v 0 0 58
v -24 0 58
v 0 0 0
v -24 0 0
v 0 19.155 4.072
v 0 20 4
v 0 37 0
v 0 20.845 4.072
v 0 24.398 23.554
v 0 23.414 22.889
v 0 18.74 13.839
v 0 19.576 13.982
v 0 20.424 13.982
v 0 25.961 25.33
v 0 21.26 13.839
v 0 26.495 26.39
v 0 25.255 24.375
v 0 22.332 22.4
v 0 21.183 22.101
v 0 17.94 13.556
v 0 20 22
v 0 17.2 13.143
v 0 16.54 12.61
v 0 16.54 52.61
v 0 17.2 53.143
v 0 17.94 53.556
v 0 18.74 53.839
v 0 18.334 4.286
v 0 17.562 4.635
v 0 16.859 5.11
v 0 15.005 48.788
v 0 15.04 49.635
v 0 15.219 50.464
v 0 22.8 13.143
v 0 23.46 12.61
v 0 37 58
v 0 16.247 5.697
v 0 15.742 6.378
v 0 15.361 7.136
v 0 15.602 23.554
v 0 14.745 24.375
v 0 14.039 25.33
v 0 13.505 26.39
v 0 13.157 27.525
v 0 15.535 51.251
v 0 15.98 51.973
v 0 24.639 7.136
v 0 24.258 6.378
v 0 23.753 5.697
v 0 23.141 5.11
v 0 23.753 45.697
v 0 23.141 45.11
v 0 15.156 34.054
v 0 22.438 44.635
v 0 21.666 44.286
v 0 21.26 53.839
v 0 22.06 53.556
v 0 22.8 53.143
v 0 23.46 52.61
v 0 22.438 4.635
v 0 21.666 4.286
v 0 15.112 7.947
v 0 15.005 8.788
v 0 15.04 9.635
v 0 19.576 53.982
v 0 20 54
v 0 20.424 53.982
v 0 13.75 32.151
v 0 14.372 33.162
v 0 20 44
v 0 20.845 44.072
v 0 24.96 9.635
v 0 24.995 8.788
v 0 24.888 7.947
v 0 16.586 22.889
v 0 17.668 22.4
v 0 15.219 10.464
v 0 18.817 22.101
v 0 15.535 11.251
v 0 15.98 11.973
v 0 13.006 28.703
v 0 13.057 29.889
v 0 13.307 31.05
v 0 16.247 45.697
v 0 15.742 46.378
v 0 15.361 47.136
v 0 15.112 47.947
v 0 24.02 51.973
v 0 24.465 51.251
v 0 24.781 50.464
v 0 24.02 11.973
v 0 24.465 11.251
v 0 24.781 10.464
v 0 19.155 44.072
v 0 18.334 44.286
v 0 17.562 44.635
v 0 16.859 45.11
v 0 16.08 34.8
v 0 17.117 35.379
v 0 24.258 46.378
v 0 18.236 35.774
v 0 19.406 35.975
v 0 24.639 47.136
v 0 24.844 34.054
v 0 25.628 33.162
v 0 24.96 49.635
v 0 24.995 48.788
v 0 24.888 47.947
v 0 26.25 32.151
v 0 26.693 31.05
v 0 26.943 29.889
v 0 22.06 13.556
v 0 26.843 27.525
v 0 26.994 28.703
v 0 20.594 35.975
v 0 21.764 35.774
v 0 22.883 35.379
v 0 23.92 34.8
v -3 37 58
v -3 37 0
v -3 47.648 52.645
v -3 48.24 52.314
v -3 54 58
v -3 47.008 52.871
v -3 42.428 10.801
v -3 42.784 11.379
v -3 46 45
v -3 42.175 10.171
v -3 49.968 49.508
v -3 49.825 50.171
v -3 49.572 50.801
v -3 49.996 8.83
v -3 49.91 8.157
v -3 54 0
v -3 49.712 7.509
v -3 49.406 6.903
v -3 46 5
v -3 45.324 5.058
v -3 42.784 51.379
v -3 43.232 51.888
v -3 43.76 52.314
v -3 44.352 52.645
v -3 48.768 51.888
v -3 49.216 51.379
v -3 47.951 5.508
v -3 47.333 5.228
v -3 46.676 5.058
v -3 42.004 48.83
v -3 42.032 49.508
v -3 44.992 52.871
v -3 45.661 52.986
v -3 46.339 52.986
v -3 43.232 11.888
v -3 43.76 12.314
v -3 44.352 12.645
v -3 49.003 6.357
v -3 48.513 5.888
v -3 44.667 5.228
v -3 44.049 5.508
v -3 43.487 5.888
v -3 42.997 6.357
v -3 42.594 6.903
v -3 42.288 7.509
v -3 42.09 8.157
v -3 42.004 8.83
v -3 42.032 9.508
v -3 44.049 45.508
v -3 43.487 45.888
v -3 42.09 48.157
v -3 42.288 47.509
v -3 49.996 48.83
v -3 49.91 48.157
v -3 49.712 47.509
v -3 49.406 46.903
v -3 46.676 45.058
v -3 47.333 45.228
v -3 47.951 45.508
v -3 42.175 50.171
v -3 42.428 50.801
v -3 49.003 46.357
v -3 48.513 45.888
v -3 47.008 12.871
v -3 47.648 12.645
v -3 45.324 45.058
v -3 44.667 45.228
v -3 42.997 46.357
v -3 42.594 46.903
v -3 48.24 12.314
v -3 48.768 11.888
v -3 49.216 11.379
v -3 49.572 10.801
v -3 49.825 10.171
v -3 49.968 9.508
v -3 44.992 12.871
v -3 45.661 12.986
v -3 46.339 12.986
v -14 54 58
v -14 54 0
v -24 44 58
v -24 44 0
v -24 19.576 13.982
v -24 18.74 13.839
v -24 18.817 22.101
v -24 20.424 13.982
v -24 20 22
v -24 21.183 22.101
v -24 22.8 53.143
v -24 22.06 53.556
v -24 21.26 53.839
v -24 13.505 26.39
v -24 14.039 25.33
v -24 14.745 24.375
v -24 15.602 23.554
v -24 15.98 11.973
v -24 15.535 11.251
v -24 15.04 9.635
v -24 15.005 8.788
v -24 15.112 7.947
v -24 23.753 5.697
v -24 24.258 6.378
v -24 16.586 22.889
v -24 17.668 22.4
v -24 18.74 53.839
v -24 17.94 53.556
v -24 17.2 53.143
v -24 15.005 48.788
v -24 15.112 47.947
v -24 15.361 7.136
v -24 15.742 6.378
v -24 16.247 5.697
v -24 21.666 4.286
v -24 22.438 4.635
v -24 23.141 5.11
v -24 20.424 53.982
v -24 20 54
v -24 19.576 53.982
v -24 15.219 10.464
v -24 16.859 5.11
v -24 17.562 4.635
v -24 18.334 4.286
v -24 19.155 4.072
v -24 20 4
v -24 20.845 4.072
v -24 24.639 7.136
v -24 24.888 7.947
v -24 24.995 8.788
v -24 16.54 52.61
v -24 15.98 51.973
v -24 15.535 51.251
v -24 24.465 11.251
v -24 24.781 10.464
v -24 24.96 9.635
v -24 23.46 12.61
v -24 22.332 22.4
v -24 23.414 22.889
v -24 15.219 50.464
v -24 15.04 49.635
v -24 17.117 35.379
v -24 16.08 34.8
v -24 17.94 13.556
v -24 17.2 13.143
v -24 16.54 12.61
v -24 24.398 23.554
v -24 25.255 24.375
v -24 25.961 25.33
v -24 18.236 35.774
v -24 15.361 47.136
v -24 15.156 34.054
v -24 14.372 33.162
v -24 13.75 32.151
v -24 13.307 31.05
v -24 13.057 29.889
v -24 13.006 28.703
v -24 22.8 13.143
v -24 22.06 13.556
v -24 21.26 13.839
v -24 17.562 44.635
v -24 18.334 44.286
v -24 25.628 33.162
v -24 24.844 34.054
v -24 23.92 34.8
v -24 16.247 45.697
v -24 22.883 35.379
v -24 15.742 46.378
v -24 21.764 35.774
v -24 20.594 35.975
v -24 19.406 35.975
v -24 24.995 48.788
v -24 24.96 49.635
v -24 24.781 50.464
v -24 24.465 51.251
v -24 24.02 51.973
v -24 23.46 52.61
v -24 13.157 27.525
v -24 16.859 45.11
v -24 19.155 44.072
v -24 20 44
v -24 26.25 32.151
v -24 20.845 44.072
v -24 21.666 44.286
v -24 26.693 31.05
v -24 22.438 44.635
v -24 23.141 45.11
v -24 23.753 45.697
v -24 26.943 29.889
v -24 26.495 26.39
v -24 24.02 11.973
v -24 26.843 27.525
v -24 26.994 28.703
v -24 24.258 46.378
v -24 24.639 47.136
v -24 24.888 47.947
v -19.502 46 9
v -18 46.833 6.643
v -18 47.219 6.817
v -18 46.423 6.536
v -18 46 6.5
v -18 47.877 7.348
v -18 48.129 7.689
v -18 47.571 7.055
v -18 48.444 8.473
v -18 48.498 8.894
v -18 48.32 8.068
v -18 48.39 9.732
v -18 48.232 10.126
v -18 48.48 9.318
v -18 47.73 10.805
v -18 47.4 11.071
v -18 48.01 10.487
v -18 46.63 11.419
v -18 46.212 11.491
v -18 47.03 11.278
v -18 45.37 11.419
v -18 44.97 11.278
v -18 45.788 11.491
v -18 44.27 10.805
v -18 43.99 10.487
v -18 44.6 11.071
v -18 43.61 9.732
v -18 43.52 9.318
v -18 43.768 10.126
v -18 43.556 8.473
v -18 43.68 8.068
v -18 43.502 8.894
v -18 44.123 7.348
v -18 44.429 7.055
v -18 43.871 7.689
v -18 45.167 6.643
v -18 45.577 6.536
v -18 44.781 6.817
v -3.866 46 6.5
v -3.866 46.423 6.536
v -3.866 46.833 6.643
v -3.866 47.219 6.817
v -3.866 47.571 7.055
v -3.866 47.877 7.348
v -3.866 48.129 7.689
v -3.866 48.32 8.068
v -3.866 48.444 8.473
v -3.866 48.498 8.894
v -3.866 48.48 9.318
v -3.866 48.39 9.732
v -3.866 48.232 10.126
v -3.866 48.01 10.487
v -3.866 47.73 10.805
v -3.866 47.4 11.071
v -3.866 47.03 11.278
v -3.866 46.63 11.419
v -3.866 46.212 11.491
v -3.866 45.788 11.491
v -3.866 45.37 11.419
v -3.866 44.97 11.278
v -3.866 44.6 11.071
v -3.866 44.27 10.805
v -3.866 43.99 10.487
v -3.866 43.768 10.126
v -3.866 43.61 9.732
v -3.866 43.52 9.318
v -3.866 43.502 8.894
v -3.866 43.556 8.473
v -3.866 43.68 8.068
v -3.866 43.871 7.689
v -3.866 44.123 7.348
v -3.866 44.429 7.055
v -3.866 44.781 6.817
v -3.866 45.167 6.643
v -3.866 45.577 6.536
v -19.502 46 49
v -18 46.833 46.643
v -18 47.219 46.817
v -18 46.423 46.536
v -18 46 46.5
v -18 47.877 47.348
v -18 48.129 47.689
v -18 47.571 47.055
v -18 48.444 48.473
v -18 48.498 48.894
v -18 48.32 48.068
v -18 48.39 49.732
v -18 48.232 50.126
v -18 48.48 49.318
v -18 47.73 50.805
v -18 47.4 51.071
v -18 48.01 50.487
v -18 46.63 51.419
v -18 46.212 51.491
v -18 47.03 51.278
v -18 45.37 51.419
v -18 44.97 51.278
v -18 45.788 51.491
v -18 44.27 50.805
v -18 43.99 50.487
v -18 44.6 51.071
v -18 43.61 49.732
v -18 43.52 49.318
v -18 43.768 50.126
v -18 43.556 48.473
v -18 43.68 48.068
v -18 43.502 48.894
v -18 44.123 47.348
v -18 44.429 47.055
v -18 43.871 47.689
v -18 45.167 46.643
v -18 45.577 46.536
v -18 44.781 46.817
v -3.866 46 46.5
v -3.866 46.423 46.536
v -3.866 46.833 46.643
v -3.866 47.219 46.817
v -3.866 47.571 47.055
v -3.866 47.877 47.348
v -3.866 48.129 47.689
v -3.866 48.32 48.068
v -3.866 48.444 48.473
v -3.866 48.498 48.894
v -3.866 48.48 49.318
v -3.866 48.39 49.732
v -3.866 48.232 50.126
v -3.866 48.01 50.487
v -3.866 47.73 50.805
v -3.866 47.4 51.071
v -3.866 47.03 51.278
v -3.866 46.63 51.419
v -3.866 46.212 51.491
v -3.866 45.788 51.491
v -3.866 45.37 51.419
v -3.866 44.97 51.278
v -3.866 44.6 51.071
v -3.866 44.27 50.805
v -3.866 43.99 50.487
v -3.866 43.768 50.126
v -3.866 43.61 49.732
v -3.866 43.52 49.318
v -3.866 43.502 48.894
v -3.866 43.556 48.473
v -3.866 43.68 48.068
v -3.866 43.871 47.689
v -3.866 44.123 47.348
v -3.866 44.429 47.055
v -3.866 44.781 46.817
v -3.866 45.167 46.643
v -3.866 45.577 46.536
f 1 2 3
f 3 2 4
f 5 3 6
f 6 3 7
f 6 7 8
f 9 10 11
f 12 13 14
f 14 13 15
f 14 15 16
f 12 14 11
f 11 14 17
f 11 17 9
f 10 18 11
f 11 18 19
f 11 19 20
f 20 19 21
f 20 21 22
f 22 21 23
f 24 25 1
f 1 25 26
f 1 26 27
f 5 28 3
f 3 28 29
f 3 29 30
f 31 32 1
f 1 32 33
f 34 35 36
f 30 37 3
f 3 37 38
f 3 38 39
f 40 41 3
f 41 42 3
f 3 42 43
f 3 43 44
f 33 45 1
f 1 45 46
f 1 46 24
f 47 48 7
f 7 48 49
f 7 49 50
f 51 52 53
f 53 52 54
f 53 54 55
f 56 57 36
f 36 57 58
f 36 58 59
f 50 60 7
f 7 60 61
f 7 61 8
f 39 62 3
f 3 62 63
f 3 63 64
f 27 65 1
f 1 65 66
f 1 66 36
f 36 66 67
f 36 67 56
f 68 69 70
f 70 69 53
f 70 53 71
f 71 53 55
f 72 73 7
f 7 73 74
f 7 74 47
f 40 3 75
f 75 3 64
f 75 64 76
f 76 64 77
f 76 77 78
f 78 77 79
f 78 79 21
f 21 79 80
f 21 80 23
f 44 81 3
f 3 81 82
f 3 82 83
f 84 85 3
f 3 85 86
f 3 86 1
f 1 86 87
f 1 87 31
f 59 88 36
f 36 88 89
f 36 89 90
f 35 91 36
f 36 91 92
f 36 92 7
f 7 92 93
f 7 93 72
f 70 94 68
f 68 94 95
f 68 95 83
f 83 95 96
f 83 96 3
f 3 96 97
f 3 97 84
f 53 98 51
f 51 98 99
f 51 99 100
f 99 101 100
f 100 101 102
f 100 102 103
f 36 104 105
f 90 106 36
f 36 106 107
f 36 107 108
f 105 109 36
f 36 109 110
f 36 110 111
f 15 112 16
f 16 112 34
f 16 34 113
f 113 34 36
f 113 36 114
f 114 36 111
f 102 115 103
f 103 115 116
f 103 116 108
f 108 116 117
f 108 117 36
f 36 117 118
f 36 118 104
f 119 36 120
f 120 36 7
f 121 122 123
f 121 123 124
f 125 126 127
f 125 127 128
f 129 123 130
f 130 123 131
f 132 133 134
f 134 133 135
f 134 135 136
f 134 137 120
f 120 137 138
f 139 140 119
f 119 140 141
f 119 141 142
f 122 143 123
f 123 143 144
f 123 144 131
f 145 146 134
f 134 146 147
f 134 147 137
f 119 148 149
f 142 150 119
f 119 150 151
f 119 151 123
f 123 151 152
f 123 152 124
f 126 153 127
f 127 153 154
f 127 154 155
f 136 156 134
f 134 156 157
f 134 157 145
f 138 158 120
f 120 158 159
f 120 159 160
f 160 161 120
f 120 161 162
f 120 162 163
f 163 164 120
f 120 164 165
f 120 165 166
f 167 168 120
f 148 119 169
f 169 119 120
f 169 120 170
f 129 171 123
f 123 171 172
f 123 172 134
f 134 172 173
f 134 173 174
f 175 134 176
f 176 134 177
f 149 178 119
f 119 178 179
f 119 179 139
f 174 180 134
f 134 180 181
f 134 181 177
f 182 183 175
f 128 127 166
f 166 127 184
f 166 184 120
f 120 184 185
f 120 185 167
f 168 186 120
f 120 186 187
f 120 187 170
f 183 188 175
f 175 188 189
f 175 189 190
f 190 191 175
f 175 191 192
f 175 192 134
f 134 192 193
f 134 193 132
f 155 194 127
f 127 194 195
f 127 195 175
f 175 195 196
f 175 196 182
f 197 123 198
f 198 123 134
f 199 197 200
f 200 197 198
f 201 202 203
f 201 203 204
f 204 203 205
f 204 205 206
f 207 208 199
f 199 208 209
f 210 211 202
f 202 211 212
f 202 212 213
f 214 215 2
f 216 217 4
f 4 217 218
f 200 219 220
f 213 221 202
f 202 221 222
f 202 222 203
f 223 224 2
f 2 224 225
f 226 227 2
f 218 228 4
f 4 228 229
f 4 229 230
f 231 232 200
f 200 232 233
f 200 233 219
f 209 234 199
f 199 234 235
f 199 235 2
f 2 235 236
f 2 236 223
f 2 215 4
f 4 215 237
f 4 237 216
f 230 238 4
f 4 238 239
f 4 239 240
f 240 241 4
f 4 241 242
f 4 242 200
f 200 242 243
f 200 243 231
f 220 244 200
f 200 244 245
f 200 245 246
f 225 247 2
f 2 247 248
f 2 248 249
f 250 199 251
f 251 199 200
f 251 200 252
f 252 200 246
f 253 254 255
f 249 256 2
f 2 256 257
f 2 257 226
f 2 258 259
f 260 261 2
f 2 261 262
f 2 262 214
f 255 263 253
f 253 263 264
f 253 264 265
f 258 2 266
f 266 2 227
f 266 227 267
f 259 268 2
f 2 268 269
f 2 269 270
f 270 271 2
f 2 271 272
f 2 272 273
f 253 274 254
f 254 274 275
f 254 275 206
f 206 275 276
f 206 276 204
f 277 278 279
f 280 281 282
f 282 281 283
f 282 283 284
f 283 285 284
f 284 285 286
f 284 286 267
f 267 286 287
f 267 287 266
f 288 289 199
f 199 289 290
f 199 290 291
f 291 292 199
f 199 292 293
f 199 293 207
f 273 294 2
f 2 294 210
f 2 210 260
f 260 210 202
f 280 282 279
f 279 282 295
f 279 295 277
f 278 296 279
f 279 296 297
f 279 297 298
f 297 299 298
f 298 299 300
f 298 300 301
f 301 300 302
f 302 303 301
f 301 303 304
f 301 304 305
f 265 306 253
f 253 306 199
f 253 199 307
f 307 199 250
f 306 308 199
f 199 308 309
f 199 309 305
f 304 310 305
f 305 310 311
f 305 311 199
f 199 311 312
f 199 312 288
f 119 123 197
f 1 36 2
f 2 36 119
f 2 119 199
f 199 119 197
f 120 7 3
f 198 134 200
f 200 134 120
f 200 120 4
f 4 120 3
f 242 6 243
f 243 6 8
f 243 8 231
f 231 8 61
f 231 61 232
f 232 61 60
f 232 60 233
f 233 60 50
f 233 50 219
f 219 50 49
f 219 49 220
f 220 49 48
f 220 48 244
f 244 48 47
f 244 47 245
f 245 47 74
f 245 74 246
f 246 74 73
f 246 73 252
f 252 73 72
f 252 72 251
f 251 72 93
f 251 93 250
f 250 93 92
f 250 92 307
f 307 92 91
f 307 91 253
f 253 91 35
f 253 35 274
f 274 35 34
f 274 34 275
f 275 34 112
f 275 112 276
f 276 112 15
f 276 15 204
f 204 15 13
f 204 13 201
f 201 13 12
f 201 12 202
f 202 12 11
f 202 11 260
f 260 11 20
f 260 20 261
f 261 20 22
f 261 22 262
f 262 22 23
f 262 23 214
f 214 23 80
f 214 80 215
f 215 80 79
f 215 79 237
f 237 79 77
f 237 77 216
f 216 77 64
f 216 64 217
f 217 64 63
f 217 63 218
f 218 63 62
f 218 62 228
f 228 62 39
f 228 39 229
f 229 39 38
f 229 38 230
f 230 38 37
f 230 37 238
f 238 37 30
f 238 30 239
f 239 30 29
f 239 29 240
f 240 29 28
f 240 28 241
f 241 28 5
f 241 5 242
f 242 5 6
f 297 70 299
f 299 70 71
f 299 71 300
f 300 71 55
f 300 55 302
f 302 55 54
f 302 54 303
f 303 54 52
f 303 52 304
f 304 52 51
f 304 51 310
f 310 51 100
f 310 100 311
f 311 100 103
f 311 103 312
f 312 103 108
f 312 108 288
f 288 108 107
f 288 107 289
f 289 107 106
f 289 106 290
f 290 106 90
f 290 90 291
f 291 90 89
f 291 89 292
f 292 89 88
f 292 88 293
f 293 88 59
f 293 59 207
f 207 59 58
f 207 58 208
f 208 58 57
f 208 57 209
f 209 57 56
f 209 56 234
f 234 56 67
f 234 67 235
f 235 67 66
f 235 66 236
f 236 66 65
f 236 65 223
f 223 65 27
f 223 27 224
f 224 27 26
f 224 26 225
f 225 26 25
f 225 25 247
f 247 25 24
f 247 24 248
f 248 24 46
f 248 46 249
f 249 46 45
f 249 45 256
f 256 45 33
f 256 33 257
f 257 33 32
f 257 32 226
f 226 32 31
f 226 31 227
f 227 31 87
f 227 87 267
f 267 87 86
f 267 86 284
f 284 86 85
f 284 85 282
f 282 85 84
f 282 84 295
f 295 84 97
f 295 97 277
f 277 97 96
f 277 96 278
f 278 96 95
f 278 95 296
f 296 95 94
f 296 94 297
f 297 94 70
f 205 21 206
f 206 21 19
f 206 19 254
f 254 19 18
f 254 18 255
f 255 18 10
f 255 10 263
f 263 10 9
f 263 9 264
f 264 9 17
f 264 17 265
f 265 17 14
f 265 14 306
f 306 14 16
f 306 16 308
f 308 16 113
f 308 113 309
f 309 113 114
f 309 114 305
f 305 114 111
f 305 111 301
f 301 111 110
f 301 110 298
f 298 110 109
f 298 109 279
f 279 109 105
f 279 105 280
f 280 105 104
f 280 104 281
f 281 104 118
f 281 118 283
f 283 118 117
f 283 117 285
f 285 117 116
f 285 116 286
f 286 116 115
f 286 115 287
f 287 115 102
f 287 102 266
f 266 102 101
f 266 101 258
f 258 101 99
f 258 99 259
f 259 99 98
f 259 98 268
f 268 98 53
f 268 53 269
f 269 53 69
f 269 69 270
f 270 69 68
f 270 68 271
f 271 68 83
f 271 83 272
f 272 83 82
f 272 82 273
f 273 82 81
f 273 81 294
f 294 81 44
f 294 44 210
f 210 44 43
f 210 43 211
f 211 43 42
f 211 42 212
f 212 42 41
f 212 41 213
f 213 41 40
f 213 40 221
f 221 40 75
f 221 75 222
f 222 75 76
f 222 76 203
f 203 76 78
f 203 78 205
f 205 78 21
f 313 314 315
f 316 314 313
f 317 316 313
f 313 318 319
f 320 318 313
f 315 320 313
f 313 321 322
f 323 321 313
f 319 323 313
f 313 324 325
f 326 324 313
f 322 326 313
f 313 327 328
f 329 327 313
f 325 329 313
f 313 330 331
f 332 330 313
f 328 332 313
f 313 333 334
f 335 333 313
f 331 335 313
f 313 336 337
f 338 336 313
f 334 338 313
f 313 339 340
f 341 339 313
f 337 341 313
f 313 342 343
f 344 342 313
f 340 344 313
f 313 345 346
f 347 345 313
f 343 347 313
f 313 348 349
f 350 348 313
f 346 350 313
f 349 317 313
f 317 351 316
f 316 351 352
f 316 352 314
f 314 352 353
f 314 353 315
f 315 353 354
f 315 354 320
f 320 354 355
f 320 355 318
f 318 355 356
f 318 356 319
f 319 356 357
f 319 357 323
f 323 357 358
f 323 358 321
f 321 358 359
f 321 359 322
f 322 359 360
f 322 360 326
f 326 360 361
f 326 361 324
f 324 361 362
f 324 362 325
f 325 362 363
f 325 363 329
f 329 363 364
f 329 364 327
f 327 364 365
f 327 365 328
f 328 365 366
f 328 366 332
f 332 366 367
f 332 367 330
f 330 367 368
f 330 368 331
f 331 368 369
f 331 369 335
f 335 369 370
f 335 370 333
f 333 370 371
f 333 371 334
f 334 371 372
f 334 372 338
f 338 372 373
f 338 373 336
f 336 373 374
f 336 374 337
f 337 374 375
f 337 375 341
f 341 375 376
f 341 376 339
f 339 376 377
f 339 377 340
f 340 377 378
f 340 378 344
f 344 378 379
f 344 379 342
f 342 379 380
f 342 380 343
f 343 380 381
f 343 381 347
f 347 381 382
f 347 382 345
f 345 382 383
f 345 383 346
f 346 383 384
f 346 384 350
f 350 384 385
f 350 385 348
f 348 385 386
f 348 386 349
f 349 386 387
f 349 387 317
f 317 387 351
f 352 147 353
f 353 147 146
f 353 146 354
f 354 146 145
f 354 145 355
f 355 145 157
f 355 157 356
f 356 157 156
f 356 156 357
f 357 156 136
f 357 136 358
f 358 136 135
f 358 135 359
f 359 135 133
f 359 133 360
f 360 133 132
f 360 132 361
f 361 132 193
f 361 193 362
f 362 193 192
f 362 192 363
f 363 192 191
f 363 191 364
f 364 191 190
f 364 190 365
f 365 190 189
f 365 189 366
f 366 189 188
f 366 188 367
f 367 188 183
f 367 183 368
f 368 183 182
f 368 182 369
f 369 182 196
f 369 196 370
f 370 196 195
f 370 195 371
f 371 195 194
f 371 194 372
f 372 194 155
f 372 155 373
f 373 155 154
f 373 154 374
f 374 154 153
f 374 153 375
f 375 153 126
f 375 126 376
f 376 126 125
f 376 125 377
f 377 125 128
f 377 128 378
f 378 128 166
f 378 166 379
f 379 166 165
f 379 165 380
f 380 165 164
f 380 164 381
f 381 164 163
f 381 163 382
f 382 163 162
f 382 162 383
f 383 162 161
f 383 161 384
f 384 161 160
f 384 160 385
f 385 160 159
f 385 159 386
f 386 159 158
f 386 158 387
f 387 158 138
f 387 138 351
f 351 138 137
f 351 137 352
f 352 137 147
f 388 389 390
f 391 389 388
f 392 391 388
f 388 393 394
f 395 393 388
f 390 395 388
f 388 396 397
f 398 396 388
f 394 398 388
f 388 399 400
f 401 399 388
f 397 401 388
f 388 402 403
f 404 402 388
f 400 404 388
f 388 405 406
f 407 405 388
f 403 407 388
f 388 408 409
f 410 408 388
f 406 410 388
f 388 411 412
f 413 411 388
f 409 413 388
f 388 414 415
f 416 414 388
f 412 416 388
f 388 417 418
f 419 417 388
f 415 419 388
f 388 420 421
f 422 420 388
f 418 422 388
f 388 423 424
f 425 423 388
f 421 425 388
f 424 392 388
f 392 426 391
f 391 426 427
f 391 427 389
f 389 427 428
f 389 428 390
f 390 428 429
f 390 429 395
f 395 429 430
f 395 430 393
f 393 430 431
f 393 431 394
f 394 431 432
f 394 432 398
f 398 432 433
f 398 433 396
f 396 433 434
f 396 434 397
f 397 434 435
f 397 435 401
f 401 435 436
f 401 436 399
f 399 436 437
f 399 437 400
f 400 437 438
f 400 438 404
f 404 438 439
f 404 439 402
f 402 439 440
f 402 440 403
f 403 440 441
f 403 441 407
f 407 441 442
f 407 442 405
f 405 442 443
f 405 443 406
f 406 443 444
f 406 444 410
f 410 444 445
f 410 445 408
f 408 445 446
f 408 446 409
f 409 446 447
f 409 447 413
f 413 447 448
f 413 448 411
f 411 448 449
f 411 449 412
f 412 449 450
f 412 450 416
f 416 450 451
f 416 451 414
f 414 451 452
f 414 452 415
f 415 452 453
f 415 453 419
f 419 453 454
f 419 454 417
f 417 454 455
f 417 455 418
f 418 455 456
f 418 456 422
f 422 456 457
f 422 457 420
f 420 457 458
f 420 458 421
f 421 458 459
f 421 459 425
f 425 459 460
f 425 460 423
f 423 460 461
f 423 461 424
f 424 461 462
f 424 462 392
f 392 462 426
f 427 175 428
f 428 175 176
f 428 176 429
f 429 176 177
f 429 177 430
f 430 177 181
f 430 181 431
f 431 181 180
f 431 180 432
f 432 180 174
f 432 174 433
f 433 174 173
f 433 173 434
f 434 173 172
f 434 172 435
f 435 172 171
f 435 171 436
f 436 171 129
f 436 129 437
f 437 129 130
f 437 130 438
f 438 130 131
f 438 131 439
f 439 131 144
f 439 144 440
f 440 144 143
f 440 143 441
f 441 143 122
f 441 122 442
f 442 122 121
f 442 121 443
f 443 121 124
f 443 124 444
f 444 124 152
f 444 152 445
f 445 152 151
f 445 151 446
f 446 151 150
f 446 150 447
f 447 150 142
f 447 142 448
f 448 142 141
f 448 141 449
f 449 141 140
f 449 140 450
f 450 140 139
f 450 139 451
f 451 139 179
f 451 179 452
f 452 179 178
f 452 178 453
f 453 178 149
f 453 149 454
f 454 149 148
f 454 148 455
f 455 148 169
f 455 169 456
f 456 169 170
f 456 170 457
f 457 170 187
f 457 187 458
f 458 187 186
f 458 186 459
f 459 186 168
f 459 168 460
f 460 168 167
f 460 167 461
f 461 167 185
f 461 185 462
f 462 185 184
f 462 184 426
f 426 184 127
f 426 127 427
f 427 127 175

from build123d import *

# Parameters (mm, degrees)
BOSS_EXTRU_1_DEPTH         = 58
ESQUISSE2_R                = 5
ENL_V_MAT_EXTRU_1_DEPTH    = 83.800966178
TROU_TARAUD_M161_D         = 14
R_P_TITION_LIN_AIRE1_COUNT = 2
R_P_TITION_LIN_AIRE1_PITCH = 40


with BuildPart() as part:
    # Esquisse1 → Boss.-Extru.1 (new body)
    with BuildSketch(Plane.XY):
        Polygon((0, 0), (0, 37), (-3, 37), (-3, 54), (-14, 54), (-24, 44), (-24, 0), align=None)
    extrude(amount=BOSS_EXTRU_1_DEPTH)

    # Esquisse2 → Enlèv. mat.-Extru.1 (cut, through all)
    with BuildSketch(Plane(origin=(0, 0, 0), x_dir=(0, 0, -1), z_dir=(1, 0, 0))):
        with Locations((-9, 20)):
            Circle(ESQUISSE2_R)
        with Locations(Location((-49, 20, 0), (0, 0, 180))):
            Circle(ESQUISSE2_R)
    extrude(amount=-ENL_V_MAT_EXTRU_1_DEPTH, mode=Mode.SUBTRACT)

    # Trou taraudé M161 (through all)
    with Locations(Plane(origin=(0, 0, 0), x_dir=(0, 0, -1), z_dir=(1, 0, 0))):
        with Locations((-29, 20)):
            Hole(TROU_TARAUD_M161_D / 2)

    # Esquisse8 → Trou taraudé M61 (revolve, cut)
    with BuildSketch(Plane(origin=(-3, 46, 9), x_dir=(0, 0, -1), z_dir=(0, 1, 0))):
        Polygon((0, 0), (0, 16.502151548), (2.5, 15), (2.5, 0.866025404), (4, 0), align=None)
    trou_taraud_m61 = revolve(axis=Axis((3.35, 46, 9), (-1, 0, 0)), mode=Mode.SUBTRACT)

    # Répétition linéaire1: Trou taraudé M61 ×2
    with Locations(*[(0, 0, i * R_P_TITION_LIN_AIRE1_PITCH) for i in range(1, R_P_TITION_LIN_AIRE1_COUNT)]):
        add(trou_taraud_m61, mode=Mode.SUBTRACT)


solid = part.part
